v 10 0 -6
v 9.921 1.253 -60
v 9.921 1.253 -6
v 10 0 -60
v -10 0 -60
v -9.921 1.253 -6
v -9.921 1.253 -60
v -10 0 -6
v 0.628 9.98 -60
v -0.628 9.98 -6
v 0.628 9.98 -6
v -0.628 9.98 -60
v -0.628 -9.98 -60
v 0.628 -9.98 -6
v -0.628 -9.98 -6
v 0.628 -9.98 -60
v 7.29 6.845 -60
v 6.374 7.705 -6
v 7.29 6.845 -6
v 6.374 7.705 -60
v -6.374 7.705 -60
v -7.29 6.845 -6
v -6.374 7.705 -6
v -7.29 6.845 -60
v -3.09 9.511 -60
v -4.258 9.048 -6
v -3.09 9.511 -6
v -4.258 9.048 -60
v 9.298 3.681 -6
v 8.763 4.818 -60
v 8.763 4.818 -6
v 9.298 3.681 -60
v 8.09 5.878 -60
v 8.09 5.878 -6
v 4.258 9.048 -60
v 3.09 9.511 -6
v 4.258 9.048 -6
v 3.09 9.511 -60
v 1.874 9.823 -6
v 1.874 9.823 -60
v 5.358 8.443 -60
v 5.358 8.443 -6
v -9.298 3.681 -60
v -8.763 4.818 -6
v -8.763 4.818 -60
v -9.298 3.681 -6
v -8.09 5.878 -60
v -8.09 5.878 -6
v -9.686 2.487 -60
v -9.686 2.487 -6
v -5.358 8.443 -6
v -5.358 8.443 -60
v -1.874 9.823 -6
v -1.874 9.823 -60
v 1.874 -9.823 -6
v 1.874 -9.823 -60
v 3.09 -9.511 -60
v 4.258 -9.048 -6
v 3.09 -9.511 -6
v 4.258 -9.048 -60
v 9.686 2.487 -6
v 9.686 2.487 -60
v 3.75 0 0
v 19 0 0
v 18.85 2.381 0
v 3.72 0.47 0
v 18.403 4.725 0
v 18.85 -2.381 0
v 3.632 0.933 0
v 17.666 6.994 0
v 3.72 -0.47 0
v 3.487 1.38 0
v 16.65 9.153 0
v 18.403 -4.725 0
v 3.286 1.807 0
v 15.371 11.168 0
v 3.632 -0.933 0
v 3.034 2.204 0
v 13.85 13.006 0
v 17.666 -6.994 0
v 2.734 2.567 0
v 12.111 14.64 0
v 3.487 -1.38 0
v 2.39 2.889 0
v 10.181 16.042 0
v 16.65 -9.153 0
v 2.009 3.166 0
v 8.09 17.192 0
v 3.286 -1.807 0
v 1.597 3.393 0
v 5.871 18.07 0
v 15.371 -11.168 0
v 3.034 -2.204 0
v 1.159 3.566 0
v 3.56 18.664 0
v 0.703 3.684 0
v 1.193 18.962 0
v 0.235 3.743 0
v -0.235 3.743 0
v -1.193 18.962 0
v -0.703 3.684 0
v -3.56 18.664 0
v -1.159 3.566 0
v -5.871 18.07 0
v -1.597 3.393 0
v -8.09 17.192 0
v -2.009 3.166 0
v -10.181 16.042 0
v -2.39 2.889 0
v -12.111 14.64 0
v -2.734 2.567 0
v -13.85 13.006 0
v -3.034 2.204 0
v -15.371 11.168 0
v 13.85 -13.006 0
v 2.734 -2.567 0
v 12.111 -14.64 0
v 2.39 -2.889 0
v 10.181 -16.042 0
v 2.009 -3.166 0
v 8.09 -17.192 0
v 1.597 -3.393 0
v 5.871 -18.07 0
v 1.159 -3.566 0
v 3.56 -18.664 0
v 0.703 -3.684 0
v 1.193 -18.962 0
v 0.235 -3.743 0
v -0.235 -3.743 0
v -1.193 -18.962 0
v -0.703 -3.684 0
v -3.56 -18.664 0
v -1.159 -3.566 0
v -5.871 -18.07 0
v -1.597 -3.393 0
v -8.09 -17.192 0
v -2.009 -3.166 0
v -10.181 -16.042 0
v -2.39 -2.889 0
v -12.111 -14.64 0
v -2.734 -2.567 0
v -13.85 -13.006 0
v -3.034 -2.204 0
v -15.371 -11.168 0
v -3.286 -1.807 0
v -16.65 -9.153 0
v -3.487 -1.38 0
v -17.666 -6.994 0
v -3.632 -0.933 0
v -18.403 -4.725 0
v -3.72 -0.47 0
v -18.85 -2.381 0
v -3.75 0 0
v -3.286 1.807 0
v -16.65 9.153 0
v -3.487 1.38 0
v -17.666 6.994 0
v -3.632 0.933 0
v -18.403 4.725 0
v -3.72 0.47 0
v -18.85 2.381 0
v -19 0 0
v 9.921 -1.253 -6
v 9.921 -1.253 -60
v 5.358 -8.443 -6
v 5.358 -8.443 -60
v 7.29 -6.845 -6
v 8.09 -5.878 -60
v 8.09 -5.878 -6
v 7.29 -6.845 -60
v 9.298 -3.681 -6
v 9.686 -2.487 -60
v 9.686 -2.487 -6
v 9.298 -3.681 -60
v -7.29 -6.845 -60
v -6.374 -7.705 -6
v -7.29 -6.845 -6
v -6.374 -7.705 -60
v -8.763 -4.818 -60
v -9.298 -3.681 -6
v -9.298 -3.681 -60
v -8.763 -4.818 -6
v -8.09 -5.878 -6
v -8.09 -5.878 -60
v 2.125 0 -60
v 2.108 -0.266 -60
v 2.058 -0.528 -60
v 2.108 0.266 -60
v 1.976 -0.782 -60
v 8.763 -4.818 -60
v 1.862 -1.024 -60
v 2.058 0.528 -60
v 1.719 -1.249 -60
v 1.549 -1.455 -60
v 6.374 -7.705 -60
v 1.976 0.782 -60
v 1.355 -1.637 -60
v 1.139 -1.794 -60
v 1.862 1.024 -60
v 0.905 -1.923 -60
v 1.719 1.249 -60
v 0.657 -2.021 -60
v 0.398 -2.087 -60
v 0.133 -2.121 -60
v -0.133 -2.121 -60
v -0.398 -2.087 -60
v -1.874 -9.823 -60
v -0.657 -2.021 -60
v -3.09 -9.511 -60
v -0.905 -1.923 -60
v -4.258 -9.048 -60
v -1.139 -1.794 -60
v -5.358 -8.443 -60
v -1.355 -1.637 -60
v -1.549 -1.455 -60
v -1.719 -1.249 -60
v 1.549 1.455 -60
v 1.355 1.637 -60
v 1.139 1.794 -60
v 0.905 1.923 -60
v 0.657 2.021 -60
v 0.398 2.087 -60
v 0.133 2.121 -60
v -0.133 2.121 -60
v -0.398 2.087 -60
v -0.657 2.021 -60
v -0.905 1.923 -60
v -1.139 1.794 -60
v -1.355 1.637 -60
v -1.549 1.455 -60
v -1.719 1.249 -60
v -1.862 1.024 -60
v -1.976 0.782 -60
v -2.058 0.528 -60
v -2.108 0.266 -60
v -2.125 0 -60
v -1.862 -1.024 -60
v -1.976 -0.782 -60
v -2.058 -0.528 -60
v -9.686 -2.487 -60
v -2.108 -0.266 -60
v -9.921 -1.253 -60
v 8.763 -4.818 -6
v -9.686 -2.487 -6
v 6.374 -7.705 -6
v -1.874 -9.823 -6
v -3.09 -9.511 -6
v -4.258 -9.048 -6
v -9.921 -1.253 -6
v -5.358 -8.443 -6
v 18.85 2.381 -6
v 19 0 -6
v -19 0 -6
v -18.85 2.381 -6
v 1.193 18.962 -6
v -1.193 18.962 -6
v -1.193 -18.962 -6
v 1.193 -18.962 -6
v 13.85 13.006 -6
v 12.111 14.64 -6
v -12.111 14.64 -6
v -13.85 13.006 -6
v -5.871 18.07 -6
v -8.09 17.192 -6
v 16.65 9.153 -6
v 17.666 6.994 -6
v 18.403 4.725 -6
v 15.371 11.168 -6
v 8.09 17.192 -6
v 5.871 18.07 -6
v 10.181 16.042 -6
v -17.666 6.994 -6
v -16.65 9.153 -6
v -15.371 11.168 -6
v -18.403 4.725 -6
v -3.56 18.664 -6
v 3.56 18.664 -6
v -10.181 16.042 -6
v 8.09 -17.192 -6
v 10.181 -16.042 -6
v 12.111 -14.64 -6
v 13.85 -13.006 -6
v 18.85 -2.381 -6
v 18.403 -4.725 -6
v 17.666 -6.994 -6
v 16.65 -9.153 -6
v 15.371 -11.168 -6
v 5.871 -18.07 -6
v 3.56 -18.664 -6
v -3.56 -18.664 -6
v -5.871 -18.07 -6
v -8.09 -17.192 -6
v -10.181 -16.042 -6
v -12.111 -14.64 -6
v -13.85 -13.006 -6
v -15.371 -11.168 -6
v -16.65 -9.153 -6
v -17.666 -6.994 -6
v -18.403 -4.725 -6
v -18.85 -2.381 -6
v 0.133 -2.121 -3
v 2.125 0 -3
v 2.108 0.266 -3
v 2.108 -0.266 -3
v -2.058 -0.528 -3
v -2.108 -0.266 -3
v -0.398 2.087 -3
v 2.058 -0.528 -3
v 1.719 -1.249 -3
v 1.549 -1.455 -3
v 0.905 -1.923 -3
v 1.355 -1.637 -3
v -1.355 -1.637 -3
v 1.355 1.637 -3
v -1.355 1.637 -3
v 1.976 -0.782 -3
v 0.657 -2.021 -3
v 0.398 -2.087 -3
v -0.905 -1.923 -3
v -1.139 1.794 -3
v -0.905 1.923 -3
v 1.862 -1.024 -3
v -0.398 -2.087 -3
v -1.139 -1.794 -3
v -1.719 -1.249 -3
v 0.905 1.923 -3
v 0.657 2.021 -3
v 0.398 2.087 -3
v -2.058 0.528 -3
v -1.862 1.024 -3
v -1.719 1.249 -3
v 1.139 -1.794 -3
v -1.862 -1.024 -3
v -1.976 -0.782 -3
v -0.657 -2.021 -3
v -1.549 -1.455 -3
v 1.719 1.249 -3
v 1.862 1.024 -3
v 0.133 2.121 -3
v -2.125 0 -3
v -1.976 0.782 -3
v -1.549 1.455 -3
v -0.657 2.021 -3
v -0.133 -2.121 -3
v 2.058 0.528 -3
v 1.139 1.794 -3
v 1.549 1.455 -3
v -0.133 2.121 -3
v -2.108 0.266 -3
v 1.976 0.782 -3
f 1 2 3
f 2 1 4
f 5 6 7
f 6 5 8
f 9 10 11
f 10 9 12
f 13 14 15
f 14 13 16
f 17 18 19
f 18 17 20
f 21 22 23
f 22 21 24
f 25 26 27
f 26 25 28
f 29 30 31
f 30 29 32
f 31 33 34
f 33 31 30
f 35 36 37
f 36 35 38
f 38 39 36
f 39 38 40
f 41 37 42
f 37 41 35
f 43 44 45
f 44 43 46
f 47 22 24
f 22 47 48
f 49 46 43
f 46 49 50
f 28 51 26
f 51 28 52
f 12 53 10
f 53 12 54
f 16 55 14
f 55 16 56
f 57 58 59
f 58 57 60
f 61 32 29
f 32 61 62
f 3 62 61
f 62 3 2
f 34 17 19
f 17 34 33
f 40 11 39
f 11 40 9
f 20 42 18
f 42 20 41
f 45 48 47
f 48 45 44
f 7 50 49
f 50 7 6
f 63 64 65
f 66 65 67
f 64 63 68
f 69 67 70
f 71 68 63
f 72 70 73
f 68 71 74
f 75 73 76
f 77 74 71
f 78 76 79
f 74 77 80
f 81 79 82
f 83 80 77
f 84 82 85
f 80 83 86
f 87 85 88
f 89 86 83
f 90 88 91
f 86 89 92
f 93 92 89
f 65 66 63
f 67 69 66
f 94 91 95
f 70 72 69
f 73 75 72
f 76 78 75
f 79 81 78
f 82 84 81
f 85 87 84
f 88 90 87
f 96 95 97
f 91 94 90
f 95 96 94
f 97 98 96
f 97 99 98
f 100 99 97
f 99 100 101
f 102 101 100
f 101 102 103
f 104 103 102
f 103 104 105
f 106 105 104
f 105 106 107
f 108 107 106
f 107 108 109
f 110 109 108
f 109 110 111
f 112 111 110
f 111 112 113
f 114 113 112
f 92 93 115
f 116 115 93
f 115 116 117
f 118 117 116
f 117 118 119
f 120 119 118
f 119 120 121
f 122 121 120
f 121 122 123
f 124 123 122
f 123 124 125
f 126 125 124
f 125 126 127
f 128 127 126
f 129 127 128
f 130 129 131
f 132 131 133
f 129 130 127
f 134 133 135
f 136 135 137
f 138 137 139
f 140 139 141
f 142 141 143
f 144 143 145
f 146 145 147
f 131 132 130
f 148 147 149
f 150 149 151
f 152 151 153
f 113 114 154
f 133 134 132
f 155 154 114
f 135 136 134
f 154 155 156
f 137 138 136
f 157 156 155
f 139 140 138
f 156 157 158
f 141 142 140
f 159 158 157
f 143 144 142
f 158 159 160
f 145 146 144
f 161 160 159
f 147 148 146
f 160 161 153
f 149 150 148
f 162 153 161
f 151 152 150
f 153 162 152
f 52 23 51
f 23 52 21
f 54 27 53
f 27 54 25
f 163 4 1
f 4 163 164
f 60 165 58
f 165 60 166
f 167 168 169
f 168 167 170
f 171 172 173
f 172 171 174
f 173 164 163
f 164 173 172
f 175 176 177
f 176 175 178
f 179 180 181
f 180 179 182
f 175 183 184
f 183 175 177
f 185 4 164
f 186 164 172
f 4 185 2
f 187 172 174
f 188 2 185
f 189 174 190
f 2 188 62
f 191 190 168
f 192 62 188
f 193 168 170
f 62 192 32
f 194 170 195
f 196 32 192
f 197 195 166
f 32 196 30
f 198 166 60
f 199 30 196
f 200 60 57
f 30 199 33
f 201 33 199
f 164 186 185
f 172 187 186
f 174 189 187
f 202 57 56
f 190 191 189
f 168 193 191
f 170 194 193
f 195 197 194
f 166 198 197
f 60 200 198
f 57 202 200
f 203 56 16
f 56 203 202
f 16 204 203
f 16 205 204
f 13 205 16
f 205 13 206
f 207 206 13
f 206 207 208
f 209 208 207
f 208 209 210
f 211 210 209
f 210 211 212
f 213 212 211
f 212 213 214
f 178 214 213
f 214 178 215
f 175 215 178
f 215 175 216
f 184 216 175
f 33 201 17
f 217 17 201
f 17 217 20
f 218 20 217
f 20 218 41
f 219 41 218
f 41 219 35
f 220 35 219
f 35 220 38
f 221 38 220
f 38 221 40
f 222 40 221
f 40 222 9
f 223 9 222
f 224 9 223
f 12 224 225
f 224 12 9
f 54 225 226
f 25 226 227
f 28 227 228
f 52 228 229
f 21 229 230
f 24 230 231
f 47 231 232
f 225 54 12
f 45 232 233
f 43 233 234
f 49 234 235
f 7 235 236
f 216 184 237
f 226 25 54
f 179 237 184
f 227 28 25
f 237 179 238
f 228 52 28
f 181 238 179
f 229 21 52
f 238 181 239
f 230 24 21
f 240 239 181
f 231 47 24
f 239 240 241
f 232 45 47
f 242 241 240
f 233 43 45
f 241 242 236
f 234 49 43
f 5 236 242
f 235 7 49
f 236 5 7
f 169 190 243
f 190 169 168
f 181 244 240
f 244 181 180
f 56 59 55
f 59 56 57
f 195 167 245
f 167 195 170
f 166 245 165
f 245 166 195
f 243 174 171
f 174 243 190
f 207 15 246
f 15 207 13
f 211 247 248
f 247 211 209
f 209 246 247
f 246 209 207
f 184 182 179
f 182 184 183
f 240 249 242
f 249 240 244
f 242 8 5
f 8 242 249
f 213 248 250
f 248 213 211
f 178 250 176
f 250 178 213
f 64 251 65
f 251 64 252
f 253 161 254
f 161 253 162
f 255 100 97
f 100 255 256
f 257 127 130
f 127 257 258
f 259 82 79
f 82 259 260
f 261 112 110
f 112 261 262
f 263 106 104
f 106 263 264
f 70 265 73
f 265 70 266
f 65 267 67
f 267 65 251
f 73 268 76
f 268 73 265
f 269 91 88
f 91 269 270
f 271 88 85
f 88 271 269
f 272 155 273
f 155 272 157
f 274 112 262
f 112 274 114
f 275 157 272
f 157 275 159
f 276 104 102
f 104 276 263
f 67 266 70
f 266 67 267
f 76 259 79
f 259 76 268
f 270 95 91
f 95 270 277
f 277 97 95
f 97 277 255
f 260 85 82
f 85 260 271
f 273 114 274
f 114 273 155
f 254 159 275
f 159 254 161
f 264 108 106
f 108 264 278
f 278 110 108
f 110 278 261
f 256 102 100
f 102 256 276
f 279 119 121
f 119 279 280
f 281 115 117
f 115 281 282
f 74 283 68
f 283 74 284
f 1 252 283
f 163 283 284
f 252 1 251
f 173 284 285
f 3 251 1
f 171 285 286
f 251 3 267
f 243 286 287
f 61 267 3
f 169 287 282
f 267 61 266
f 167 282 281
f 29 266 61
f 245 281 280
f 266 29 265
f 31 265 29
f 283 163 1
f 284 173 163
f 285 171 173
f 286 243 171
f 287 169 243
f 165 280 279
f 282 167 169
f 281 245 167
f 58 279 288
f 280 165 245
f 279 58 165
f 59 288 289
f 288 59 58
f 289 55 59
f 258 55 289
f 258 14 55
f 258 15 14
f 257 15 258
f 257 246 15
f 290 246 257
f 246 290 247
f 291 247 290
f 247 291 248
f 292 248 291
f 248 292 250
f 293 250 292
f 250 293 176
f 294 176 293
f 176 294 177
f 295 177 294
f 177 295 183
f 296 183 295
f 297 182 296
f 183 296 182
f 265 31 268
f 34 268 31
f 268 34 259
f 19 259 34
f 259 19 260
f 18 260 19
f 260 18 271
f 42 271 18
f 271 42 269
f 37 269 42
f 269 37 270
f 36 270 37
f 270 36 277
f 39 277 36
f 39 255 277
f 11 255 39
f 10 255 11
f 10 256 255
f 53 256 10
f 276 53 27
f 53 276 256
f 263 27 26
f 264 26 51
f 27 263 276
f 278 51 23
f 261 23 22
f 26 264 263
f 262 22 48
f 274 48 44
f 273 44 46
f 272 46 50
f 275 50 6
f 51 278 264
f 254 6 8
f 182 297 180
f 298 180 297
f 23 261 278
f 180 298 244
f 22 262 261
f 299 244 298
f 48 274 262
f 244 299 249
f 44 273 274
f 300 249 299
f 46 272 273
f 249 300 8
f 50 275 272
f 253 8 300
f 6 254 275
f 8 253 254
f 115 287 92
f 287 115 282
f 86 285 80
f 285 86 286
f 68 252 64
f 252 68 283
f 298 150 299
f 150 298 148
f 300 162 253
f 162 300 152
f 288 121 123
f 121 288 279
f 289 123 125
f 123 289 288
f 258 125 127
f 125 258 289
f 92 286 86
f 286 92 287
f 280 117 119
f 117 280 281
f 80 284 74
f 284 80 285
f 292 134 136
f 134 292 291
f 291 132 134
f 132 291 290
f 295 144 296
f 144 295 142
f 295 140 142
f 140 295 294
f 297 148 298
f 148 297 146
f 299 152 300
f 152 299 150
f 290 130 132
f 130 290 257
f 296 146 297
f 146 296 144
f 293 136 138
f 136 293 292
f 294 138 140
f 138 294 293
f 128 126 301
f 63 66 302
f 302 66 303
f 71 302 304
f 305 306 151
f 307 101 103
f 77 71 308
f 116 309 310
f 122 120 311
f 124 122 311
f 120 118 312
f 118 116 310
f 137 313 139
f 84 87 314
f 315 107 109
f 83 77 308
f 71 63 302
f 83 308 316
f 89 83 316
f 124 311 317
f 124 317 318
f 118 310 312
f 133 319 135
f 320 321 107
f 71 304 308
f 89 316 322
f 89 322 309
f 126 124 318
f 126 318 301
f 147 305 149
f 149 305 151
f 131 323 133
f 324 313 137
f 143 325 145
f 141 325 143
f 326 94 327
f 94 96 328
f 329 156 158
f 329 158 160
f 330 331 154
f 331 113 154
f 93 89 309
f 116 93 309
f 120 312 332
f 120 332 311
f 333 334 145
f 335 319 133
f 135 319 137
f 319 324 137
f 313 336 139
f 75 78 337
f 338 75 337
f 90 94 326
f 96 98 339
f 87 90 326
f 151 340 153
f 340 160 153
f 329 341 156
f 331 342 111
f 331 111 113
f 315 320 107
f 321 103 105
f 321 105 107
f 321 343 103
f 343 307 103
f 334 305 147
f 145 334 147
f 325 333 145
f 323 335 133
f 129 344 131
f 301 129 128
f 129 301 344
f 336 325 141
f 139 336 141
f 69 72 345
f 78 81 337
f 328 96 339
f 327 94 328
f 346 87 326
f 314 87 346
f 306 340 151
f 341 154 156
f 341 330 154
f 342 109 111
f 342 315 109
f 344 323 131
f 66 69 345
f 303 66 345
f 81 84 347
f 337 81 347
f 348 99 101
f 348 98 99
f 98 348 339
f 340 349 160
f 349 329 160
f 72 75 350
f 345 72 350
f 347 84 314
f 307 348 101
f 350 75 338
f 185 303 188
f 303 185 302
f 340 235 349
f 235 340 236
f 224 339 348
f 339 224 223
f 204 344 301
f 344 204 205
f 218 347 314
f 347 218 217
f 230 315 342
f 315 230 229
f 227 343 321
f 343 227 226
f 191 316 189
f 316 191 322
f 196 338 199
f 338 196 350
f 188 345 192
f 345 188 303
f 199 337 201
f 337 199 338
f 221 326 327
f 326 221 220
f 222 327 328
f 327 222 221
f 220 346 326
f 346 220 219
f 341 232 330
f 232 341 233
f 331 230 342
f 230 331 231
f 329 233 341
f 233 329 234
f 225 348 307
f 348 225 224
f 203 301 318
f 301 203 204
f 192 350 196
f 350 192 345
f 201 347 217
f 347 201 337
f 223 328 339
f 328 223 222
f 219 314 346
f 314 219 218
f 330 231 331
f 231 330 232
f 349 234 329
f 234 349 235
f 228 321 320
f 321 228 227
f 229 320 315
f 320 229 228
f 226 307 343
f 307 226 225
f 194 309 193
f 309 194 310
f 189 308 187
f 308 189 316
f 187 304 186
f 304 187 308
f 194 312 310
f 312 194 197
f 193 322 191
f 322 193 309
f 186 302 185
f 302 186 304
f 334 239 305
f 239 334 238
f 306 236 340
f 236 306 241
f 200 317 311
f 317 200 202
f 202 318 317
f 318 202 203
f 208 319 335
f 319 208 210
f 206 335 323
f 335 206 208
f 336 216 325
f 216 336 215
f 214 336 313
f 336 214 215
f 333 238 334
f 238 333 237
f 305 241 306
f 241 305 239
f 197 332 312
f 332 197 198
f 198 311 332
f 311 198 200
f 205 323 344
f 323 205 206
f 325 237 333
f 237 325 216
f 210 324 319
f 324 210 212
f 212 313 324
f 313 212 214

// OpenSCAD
$fn = 50;


difference() {
	union() {
		translate(v = [0, 0, -60.0000000000]) {
			cylinder(h = 60, r = 10.0000000000);
		}
		translate(v = [0, 0, -6.0000000000]) {
			cylinder(h = 6, r = 19.0000000000);
		}
	}
	union() {
		translate(v = [0, 0, 0]) {
			rotate(a = [0, 0, 0]) {
				difference() {
					union() {
						#translate(v = [0, 0, -60.0000000000]) {
							cylinder(h = 60, r = 2.0000000000);
						}
						#translate(v = [0, 0, -3]) {
							cylinder(h = 3, r = 10.0000000000, r1 = 2.1250000000, r2 = 3.7500000000);
						}
						#translate(v = [0, 0, -60.0000000000]) {
							cylinder(h = 60, r = 2.1250000000);
						}
						#translate(v = [0, 0, -60.0000000000]) {
							cylinder(h = 60, r = 2.0000000000);
						}
					}
					union();
				}
			}
		}
	}
}
